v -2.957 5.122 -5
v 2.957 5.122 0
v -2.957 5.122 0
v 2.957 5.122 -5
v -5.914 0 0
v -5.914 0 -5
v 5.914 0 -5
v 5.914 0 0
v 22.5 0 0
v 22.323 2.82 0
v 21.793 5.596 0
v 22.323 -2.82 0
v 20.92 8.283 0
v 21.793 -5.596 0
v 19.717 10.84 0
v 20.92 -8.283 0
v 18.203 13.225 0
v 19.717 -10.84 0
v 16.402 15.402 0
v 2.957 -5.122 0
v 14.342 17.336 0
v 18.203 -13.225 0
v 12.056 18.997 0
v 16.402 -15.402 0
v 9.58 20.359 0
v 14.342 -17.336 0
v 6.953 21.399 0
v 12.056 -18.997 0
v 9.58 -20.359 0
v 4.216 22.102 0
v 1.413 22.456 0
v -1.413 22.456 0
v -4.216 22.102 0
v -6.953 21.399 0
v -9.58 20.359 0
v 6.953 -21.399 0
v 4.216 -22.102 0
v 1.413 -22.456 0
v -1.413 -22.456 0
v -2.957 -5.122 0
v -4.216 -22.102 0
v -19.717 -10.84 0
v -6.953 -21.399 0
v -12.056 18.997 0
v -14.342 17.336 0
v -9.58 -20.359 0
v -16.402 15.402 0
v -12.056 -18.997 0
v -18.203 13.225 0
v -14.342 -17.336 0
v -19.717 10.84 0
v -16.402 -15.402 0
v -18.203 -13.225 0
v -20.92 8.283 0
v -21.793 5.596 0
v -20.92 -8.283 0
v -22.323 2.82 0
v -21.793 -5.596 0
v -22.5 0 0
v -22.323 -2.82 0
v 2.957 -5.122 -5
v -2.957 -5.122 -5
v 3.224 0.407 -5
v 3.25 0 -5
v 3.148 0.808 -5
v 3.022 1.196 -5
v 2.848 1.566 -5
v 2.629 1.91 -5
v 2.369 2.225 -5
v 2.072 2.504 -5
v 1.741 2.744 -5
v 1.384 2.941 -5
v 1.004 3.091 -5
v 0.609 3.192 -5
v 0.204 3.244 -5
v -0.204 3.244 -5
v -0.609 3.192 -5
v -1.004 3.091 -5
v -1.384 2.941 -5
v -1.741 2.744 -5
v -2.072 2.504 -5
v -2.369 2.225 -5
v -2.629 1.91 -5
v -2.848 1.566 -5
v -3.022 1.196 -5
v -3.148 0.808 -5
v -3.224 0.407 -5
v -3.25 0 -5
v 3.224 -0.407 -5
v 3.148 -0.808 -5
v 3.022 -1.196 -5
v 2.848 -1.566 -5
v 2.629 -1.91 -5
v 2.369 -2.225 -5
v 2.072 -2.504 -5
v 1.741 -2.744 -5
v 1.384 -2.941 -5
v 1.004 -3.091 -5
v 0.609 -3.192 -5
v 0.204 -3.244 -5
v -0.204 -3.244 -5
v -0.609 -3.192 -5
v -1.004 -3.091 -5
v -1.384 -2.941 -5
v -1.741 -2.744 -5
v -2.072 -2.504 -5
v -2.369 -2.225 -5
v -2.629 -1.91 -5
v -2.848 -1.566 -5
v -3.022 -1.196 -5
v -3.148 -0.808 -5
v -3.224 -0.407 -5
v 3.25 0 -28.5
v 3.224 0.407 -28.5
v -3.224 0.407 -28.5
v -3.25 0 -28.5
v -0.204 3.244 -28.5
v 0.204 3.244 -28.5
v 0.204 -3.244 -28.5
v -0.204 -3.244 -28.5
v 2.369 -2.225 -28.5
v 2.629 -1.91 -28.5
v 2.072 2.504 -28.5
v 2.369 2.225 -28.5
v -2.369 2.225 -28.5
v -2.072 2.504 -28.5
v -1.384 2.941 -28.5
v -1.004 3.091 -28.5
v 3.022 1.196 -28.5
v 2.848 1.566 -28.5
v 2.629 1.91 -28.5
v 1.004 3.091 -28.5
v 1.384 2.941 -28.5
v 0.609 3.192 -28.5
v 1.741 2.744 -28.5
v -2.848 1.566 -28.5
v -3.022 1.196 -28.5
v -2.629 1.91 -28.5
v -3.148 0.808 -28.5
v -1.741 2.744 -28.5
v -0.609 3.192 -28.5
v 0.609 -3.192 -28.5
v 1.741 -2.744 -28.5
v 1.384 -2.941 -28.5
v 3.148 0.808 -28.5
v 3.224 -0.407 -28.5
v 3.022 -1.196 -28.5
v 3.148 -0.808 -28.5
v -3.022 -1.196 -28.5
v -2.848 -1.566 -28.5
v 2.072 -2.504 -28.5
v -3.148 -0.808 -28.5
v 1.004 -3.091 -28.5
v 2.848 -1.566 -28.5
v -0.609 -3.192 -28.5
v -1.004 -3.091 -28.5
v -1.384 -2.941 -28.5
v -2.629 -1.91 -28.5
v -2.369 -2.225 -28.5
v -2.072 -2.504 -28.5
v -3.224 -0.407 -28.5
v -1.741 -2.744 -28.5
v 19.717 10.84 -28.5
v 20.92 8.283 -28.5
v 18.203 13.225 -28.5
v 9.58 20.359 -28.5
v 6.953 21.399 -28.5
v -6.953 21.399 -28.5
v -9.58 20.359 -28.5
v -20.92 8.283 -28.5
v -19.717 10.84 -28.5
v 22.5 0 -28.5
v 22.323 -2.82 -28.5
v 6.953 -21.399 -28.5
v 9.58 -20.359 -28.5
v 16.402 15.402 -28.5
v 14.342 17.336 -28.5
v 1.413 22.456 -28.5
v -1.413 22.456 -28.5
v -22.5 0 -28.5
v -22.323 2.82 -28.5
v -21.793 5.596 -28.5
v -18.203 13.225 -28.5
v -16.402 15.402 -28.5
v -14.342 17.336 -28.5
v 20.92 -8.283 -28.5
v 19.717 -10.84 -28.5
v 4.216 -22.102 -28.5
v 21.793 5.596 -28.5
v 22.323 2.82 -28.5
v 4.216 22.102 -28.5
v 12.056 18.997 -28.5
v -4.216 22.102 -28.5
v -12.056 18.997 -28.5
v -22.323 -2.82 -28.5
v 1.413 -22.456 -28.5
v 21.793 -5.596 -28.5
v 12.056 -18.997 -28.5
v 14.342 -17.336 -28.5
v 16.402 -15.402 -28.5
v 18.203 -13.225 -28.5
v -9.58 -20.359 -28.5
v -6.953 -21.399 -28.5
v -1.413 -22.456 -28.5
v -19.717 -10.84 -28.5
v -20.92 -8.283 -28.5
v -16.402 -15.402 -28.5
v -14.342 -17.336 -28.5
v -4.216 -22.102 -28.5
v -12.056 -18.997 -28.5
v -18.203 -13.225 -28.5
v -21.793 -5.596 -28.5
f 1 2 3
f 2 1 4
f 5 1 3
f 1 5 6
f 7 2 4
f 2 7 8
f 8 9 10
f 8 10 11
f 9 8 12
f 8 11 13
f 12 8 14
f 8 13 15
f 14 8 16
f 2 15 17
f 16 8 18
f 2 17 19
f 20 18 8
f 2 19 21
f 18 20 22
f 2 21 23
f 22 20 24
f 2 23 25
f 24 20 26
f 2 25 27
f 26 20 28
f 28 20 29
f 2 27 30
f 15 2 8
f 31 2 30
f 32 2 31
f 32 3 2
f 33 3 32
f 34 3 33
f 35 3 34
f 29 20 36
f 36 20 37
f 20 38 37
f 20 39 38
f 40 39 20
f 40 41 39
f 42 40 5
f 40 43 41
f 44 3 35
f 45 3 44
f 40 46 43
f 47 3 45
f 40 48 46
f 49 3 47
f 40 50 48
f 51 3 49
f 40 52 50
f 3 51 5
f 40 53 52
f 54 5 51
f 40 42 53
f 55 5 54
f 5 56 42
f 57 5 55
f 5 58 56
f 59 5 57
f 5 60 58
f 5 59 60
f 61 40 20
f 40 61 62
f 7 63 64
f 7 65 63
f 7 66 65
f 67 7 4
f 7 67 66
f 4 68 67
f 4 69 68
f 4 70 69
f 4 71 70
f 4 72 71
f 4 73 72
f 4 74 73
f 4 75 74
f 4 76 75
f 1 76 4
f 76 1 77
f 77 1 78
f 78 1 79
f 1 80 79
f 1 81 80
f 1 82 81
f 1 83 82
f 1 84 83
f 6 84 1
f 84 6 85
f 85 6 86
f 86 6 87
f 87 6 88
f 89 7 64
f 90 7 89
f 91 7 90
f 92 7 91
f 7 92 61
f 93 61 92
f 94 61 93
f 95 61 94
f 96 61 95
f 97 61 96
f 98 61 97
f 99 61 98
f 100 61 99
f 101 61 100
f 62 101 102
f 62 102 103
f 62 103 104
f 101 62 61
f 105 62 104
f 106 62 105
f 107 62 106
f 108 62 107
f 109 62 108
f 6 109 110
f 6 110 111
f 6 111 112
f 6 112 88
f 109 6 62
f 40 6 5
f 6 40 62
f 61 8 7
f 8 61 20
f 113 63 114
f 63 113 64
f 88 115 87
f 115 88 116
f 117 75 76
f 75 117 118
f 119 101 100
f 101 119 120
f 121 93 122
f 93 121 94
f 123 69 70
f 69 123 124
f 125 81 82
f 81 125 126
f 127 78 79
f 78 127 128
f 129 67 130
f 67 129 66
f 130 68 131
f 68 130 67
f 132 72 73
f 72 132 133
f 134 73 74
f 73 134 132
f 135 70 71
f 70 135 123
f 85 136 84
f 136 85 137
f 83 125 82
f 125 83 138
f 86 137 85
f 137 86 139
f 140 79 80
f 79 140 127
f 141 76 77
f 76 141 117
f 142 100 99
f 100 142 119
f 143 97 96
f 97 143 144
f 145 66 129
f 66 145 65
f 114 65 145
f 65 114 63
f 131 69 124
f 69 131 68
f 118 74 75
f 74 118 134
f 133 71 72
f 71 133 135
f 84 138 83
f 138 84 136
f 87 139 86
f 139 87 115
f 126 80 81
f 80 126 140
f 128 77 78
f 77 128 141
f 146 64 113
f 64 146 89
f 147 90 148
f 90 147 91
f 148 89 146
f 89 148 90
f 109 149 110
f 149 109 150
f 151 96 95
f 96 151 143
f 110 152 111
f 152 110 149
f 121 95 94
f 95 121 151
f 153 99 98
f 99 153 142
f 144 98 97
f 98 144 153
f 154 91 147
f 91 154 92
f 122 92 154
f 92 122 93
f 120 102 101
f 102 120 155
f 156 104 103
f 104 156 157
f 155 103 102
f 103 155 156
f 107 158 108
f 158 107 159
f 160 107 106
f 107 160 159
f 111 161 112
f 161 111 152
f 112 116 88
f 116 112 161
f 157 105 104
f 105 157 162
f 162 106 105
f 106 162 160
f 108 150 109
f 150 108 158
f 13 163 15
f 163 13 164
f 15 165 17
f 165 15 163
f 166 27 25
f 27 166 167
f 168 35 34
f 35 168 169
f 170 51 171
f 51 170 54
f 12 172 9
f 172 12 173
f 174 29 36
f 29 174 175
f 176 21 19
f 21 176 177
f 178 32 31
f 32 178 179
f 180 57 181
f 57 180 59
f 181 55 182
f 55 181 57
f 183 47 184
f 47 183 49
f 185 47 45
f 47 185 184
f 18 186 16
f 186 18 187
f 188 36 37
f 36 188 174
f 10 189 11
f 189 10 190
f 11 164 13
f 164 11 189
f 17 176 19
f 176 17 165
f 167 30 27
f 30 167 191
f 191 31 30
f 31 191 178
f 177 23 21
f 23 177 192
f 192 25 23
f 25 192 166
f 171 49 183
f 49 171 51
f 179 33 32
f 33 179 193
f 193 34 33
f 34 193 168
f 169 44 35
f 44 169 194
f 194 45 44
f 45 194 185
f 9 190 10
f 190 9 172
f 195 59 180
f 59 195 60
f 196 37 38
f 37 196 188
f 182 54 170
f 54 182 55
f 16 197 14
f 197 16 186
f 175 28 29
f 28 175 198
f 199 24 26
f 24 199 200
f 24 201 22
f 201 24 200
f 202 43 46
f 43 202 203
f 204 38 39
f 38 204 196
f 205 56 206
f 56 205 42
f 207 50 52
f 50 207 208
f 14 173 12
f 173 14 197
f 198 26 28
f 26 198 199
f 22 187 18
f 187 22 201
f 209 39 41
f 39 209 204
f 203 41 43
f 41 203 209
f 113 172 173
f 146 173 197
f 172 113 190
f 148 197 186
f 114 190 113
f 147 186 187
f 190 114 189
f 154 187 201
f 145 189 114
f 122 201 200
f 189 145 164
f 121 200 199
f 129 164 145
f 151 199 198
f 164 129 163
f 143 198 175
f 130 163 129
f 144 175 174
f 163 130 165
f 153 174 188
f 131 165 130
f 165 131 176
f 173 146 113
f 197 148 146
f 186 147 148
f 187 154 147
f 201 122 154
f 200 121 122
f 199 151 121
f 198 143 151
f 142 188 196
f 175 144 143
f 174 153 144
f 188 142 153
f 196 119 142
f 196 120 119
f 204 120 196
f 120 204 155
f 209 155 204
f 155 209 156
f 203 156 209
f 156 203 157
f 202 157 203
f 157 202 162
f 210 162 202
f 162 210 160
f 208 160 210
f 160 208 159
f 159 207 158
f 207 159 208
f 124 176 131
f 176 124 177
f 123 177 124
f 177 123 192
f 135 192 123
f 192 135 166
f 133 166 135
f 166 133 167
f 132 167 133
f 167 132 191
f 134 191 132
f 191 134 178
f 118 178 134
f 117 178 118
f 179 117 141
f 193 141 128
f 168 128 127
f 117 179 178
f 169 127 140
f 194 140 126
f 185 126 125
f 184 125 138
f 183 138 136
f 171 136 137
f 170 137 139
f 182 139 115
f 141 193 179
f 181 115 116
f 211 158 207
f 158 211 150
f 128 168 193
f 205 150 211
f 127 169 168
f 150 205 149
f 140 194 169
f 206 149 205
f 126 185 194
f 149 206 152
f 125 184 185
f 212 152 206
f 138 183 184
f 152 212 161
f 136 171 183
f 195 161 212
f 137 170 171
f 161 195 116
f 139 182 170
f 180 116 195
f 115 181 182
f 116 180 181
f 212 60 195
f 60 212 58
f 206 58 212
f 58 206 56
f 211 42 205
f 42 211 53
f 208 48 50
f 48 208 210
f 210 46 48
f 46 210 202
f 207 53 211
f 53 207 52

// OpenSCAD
$fn = 50;


difference() {
	union() {
		translate(v = [0, 0, -28.5000000000]) {
			cylinder(h = 28.5000000000, r = 22.5000000000);
		}
	}
	union() {
		translate(v = [0, 0, 0]) {
			rotate(a = [0, 0, 0]) {
				difference() {
					union() {
						translate(v = [0, 0, -5]) {
							linear_extrude(height = 5) {
								polygon(points = [[5.9142500000, 0.0000000000], [2.9571250000, 5.1218907443], [-2.9571250000, 5.1218907443], [-5.9142500000, 0.0000000000], [-2.9571250000, -5.1218907443], [2.9571250000, -5.1218907443]]);
							}
						}
					}
					union();
				}
			}
		}
		#translate(v = [0, 0, -100.0000000000]) {
			cylinder(h = 200, r = 3.2500000000);
		}
	}
}
